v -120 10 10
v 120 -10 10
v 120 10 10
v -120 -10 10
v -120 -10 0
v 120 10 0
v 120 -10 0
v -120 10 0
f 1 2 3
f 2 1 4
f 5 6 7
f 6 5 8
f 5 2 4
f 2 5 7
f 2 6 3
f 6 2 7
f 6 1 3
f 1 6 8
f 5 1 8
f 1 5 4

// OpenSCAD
// Parameters for the rectangular block
block_length = 240;  // Adjusted length of the block to match the original model
block_width = 20;    // Width of the block
block_height = 10;   // Height of the block

// Function to create a single rectangular block
module rectangular_block() {
    cube([block_length, block_width, block_height], center = true);
}

// Generate the single continuous rectangular block
translate([0, 0, block_height / 2]) {
    rectangular_block();
}
